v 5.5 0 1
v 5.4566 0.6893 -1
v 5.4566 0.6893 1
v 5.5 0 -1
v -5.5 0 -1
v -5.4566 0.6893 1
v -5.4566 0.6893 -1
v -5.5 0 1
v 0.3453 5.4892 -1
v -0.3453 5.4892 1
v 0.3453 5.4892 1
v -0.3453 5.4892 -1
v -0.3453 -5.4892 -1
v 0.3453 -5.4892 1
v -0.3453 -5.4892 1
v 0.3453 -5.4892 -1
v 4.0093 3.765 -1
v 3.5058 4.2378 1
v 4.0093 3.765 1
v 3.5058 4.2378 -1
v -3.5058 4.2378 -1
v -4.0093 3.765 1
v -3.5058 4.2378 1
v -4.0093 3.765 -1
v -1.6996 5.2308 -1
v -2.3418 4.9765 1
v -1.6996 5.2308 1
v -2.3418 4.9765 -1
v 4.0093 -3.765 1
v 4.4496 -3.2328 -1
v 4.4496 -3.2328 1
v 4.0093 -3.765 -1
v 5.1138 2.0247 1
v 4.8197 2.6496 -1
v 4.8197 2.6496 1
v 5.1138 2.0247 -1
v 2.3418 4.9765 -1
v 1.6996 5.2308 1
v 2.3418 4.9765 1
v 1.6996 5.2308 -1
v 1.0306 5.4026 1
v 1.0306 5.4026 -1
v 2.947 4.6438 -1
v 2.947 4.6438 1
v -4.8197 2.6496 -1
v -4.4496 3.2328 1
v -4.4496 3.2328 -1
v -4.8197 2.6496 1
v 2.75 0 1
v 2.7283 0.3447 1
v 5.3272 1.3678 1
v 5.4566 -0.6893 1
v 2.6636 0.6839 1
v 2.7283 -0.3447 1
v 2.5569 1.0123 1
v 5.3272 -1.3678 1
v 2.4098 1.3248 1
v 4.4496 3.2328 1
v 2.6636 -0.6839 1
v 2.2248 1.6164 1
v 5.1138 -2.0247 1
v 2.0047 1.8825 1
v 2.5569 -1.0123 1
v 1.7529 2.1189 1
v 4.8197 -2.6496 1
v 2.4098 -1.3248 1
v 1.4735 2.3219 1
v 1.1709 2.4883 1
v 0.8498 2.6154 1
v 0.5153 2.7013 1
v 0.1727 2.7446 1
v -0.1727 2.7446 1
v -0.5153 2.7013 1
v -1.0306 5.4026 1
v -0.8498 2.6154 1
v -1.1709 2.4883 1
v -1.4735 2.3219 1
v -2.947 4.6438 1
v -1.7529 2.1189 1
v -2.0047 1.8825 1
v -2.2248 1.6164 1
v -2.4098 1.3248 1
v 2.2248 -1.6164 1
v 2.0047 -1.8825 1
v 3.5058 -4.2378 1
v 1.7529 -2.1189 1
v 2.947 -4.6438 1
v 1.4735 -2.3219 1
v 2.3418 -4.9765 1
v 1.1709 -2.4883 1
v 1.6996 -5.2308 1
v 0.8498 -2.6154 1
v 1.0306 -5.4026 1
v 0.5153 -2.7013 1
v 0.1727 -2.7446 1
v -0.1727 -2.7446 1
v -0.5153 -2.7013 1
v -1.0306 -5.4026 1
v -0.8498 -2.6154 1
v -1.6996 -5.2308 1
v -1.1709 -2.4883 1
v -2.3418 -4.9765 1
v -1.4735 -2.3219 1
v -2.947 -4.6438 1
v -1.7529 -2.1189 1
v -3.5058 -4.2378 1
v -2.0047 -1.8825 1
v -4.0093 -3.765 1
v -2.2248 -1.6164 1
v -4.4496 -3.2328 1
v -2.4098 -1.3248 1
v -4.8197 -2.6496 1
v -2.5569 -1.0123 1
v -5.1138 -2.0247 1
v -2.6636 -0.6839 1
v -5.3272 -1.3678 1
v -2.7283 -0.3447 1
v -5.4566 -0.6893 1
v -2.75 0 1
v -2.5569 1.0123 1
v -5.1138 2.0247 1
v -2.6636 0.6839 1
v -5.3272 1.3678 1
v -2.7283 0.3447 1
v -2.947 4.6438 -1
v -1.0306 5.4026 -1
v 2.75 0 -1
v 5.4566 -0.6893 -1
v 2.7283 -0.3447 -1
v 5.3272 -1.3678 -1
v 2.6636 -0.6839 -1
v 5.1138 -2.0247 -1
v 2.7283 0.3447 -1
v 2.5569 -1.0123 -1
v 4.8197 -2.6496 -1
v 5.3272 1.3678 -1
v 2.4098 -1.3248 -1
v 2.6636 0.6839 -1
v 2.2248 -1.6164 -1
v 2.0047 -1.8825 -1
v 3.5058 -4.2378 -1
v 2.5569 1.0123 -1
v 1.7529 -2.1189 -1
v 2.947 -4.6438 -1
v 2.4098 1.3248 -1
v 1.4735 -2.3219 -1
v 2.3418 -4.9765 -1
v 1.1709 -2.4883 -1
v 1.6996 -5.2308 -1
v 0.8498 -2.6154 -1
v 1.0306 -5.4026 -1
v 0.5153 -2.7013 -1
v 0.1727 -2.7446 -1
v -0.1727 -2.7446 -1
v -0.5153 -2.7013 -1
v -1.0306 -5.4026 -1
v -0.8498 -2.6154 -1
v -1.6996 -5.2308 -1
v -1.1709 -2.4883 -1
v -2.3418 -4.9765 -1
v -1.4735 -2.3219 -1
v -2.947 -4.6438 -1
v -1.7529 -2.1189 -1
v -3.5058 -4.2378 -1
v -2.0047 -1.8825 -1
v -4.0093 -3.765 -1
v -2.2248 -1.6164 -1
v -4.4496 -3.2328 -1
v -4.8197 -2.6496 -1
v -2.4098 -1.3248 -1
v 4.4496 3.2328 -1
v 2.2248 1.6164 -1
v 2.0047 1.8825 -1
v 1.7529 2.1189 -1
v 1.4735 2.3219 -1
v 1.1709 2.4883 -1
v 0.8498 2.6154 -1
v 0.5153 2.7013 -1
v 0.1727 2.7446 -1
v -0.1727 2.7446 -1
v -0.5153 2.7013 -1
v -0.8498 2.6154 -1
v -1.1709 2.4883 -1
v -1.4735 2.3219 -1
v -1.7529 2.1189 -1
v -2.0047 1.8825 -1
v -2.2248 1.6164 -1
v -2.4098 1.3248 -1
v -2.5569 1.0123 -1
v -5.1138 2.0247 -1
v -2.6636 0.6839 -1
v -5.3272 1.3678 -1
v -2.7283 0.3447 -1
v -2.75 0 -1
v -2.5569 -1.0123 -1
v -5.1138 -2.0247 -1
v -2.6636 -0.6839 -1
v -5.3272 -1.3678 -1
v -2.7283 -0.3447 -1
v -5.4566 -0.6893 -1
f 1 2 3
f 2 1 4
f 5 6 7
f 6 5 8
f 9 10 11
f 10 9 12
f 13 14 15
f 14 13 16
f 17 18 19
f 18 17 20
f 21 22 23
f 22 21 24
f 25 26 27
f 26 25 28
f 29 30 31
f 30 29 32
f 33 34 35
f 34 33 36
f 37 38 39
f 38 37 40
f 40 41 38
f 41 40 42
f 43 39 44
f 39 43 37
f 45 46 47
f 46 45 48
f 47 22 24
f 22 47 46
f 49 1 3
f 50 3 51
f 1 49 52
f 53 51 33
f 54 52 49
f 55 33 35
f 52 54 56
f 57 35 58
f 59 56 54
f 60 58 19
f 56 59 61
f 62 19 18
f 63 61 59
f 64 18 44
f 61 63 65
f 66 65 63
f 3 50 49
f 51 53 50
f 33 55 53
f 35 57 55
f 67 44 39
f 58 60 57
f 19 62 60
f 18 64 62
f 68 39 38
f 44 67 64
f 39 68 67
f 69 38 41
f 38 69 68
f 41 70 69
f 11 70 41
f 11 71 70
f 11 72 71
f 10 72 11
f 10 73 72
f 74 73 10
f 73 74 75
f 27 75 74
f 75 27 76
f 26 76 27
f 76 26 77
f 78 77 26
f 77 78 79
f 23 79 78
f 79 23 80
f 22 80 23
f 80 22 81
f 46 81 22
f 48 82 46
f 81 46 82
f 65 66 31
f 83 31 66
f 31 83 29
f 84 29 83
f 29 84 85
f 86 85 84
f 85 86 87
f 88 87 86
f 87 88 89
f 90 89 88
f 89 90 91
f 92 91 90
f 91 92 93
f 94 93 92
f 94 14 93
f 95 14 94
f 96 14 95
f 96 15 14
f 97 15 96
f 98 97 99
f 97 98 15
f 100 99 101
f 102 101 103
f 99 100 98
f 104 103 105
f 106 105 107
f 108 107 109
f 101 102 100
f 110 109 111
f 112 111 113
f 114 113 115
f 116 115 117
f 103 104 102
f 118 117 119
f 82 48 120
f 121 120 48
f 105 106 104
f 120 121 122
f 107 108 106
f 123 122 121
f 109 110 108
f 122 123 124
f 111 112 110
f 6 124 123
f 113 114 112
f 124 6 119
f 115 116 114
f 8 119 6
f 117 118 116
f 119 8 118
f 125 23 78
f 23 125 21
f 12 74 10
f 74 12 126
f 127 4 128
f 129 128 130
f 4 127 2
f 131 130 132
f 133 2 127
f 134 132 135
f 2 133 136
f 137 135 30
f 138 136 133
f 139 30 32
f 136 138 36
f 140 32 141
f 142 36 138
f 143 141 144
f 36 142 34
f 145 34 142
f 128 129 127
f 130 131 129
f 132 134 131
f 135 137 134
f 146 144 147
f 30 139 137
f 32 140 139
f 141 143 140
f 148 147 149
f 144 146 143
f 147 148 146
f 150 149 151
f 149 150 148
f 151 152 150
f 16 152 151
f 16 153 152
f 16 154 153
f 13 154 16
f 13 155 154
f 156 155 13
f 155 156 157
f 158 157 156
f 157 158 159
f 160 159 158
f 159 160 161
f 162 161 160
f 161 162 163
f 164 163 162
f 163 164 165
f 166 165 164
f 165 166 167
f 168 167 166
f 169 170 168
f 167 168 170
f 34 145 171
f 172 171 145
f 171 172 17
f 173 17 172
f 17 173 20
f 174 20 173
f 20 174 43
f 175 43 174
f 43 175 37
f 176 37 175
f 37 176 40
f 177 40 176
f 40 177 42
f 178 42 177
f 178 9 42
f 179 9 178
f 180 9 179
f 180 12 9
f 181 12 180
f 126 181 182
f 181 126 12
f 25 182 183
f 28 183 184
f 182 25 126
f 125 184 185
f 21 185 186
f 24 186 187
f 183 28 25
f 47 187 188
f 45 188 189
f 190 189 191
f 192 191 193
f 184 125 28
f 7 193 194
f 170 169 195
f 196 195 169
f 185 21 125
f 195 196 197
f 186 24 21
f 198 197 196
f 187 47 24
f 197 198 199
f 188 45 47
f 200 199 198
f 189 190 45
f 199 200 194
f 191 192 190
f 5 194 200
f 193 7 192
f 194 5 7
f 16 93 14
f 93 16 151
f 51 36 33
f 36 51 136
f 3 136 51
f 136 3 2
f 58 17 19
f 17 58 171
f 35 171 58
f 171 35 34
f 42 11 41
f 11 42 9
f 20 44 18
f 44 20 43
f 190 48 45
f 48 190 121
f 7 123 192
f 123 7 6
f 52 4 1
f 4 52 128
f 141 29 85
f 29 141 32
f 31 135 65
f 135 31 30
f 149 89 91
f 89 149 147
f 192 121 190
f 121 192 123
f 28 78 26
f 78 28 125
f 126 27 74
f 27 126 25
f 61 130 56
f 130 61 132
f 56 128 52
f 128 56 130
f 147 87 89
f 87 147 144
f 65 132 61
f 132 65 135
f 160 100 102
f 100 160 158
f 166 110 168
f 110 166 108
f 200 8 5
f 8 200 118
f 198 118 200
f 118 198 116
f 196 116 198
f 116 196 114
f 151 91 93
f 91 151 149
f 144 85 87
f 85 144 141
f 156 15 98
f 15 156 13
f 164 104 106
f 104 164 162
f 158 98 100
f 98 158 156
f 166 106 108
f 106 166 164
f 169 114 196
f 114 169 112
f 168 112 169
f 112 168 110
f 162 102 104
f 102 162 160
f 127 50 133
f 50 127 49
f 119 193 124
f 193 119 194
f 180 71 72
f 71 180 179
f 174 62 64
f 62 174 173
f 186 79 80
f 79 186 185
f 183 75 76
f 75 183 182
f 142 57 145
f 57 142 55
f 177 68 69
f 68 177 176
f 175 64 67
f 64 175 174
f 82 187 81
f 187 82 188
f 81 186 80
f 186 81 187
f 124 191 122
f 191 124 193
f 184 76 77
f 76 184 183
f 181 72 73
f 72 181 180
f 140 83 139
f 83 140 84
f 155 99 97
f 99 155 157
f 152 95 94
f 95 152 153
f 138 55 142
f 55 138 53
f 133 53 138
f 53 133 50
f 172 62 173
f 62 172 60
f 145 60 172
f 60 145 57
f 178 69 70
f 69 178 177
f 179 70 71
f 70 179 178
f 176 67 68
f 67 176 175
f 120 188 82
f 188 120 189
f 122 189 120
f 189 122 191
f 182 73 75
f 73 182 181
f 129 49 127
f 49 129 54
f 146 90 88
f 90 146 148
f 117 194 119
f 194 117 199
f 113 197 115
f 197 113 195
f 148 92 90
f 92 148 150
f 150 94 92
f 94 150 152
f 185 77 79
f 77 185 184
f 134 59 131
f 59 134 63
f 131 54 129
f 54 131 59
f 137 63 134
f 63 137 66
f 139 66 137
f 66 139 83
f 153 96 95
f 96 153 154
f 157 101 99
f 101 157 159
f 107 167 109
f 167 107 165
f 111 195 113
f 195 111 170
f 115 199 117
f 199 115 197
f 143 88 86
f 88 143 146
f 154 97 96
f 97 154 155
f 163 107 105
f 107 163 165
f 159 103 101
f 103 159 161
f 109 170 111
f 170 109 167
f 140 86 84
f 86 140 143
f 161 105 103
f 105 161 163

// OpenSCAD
$fn = 50;


difference() {
	union() {
		translate(v = [0, 0, -1.0000000000]) {
			cylinder(h = 2, r = 5.5000000000);
		}
	}
	union() {
		translate(v = [0, 0, -100.0000000000]) {
			cylinder(h = 200, r = 2.7500000000);
		}
	}
}
